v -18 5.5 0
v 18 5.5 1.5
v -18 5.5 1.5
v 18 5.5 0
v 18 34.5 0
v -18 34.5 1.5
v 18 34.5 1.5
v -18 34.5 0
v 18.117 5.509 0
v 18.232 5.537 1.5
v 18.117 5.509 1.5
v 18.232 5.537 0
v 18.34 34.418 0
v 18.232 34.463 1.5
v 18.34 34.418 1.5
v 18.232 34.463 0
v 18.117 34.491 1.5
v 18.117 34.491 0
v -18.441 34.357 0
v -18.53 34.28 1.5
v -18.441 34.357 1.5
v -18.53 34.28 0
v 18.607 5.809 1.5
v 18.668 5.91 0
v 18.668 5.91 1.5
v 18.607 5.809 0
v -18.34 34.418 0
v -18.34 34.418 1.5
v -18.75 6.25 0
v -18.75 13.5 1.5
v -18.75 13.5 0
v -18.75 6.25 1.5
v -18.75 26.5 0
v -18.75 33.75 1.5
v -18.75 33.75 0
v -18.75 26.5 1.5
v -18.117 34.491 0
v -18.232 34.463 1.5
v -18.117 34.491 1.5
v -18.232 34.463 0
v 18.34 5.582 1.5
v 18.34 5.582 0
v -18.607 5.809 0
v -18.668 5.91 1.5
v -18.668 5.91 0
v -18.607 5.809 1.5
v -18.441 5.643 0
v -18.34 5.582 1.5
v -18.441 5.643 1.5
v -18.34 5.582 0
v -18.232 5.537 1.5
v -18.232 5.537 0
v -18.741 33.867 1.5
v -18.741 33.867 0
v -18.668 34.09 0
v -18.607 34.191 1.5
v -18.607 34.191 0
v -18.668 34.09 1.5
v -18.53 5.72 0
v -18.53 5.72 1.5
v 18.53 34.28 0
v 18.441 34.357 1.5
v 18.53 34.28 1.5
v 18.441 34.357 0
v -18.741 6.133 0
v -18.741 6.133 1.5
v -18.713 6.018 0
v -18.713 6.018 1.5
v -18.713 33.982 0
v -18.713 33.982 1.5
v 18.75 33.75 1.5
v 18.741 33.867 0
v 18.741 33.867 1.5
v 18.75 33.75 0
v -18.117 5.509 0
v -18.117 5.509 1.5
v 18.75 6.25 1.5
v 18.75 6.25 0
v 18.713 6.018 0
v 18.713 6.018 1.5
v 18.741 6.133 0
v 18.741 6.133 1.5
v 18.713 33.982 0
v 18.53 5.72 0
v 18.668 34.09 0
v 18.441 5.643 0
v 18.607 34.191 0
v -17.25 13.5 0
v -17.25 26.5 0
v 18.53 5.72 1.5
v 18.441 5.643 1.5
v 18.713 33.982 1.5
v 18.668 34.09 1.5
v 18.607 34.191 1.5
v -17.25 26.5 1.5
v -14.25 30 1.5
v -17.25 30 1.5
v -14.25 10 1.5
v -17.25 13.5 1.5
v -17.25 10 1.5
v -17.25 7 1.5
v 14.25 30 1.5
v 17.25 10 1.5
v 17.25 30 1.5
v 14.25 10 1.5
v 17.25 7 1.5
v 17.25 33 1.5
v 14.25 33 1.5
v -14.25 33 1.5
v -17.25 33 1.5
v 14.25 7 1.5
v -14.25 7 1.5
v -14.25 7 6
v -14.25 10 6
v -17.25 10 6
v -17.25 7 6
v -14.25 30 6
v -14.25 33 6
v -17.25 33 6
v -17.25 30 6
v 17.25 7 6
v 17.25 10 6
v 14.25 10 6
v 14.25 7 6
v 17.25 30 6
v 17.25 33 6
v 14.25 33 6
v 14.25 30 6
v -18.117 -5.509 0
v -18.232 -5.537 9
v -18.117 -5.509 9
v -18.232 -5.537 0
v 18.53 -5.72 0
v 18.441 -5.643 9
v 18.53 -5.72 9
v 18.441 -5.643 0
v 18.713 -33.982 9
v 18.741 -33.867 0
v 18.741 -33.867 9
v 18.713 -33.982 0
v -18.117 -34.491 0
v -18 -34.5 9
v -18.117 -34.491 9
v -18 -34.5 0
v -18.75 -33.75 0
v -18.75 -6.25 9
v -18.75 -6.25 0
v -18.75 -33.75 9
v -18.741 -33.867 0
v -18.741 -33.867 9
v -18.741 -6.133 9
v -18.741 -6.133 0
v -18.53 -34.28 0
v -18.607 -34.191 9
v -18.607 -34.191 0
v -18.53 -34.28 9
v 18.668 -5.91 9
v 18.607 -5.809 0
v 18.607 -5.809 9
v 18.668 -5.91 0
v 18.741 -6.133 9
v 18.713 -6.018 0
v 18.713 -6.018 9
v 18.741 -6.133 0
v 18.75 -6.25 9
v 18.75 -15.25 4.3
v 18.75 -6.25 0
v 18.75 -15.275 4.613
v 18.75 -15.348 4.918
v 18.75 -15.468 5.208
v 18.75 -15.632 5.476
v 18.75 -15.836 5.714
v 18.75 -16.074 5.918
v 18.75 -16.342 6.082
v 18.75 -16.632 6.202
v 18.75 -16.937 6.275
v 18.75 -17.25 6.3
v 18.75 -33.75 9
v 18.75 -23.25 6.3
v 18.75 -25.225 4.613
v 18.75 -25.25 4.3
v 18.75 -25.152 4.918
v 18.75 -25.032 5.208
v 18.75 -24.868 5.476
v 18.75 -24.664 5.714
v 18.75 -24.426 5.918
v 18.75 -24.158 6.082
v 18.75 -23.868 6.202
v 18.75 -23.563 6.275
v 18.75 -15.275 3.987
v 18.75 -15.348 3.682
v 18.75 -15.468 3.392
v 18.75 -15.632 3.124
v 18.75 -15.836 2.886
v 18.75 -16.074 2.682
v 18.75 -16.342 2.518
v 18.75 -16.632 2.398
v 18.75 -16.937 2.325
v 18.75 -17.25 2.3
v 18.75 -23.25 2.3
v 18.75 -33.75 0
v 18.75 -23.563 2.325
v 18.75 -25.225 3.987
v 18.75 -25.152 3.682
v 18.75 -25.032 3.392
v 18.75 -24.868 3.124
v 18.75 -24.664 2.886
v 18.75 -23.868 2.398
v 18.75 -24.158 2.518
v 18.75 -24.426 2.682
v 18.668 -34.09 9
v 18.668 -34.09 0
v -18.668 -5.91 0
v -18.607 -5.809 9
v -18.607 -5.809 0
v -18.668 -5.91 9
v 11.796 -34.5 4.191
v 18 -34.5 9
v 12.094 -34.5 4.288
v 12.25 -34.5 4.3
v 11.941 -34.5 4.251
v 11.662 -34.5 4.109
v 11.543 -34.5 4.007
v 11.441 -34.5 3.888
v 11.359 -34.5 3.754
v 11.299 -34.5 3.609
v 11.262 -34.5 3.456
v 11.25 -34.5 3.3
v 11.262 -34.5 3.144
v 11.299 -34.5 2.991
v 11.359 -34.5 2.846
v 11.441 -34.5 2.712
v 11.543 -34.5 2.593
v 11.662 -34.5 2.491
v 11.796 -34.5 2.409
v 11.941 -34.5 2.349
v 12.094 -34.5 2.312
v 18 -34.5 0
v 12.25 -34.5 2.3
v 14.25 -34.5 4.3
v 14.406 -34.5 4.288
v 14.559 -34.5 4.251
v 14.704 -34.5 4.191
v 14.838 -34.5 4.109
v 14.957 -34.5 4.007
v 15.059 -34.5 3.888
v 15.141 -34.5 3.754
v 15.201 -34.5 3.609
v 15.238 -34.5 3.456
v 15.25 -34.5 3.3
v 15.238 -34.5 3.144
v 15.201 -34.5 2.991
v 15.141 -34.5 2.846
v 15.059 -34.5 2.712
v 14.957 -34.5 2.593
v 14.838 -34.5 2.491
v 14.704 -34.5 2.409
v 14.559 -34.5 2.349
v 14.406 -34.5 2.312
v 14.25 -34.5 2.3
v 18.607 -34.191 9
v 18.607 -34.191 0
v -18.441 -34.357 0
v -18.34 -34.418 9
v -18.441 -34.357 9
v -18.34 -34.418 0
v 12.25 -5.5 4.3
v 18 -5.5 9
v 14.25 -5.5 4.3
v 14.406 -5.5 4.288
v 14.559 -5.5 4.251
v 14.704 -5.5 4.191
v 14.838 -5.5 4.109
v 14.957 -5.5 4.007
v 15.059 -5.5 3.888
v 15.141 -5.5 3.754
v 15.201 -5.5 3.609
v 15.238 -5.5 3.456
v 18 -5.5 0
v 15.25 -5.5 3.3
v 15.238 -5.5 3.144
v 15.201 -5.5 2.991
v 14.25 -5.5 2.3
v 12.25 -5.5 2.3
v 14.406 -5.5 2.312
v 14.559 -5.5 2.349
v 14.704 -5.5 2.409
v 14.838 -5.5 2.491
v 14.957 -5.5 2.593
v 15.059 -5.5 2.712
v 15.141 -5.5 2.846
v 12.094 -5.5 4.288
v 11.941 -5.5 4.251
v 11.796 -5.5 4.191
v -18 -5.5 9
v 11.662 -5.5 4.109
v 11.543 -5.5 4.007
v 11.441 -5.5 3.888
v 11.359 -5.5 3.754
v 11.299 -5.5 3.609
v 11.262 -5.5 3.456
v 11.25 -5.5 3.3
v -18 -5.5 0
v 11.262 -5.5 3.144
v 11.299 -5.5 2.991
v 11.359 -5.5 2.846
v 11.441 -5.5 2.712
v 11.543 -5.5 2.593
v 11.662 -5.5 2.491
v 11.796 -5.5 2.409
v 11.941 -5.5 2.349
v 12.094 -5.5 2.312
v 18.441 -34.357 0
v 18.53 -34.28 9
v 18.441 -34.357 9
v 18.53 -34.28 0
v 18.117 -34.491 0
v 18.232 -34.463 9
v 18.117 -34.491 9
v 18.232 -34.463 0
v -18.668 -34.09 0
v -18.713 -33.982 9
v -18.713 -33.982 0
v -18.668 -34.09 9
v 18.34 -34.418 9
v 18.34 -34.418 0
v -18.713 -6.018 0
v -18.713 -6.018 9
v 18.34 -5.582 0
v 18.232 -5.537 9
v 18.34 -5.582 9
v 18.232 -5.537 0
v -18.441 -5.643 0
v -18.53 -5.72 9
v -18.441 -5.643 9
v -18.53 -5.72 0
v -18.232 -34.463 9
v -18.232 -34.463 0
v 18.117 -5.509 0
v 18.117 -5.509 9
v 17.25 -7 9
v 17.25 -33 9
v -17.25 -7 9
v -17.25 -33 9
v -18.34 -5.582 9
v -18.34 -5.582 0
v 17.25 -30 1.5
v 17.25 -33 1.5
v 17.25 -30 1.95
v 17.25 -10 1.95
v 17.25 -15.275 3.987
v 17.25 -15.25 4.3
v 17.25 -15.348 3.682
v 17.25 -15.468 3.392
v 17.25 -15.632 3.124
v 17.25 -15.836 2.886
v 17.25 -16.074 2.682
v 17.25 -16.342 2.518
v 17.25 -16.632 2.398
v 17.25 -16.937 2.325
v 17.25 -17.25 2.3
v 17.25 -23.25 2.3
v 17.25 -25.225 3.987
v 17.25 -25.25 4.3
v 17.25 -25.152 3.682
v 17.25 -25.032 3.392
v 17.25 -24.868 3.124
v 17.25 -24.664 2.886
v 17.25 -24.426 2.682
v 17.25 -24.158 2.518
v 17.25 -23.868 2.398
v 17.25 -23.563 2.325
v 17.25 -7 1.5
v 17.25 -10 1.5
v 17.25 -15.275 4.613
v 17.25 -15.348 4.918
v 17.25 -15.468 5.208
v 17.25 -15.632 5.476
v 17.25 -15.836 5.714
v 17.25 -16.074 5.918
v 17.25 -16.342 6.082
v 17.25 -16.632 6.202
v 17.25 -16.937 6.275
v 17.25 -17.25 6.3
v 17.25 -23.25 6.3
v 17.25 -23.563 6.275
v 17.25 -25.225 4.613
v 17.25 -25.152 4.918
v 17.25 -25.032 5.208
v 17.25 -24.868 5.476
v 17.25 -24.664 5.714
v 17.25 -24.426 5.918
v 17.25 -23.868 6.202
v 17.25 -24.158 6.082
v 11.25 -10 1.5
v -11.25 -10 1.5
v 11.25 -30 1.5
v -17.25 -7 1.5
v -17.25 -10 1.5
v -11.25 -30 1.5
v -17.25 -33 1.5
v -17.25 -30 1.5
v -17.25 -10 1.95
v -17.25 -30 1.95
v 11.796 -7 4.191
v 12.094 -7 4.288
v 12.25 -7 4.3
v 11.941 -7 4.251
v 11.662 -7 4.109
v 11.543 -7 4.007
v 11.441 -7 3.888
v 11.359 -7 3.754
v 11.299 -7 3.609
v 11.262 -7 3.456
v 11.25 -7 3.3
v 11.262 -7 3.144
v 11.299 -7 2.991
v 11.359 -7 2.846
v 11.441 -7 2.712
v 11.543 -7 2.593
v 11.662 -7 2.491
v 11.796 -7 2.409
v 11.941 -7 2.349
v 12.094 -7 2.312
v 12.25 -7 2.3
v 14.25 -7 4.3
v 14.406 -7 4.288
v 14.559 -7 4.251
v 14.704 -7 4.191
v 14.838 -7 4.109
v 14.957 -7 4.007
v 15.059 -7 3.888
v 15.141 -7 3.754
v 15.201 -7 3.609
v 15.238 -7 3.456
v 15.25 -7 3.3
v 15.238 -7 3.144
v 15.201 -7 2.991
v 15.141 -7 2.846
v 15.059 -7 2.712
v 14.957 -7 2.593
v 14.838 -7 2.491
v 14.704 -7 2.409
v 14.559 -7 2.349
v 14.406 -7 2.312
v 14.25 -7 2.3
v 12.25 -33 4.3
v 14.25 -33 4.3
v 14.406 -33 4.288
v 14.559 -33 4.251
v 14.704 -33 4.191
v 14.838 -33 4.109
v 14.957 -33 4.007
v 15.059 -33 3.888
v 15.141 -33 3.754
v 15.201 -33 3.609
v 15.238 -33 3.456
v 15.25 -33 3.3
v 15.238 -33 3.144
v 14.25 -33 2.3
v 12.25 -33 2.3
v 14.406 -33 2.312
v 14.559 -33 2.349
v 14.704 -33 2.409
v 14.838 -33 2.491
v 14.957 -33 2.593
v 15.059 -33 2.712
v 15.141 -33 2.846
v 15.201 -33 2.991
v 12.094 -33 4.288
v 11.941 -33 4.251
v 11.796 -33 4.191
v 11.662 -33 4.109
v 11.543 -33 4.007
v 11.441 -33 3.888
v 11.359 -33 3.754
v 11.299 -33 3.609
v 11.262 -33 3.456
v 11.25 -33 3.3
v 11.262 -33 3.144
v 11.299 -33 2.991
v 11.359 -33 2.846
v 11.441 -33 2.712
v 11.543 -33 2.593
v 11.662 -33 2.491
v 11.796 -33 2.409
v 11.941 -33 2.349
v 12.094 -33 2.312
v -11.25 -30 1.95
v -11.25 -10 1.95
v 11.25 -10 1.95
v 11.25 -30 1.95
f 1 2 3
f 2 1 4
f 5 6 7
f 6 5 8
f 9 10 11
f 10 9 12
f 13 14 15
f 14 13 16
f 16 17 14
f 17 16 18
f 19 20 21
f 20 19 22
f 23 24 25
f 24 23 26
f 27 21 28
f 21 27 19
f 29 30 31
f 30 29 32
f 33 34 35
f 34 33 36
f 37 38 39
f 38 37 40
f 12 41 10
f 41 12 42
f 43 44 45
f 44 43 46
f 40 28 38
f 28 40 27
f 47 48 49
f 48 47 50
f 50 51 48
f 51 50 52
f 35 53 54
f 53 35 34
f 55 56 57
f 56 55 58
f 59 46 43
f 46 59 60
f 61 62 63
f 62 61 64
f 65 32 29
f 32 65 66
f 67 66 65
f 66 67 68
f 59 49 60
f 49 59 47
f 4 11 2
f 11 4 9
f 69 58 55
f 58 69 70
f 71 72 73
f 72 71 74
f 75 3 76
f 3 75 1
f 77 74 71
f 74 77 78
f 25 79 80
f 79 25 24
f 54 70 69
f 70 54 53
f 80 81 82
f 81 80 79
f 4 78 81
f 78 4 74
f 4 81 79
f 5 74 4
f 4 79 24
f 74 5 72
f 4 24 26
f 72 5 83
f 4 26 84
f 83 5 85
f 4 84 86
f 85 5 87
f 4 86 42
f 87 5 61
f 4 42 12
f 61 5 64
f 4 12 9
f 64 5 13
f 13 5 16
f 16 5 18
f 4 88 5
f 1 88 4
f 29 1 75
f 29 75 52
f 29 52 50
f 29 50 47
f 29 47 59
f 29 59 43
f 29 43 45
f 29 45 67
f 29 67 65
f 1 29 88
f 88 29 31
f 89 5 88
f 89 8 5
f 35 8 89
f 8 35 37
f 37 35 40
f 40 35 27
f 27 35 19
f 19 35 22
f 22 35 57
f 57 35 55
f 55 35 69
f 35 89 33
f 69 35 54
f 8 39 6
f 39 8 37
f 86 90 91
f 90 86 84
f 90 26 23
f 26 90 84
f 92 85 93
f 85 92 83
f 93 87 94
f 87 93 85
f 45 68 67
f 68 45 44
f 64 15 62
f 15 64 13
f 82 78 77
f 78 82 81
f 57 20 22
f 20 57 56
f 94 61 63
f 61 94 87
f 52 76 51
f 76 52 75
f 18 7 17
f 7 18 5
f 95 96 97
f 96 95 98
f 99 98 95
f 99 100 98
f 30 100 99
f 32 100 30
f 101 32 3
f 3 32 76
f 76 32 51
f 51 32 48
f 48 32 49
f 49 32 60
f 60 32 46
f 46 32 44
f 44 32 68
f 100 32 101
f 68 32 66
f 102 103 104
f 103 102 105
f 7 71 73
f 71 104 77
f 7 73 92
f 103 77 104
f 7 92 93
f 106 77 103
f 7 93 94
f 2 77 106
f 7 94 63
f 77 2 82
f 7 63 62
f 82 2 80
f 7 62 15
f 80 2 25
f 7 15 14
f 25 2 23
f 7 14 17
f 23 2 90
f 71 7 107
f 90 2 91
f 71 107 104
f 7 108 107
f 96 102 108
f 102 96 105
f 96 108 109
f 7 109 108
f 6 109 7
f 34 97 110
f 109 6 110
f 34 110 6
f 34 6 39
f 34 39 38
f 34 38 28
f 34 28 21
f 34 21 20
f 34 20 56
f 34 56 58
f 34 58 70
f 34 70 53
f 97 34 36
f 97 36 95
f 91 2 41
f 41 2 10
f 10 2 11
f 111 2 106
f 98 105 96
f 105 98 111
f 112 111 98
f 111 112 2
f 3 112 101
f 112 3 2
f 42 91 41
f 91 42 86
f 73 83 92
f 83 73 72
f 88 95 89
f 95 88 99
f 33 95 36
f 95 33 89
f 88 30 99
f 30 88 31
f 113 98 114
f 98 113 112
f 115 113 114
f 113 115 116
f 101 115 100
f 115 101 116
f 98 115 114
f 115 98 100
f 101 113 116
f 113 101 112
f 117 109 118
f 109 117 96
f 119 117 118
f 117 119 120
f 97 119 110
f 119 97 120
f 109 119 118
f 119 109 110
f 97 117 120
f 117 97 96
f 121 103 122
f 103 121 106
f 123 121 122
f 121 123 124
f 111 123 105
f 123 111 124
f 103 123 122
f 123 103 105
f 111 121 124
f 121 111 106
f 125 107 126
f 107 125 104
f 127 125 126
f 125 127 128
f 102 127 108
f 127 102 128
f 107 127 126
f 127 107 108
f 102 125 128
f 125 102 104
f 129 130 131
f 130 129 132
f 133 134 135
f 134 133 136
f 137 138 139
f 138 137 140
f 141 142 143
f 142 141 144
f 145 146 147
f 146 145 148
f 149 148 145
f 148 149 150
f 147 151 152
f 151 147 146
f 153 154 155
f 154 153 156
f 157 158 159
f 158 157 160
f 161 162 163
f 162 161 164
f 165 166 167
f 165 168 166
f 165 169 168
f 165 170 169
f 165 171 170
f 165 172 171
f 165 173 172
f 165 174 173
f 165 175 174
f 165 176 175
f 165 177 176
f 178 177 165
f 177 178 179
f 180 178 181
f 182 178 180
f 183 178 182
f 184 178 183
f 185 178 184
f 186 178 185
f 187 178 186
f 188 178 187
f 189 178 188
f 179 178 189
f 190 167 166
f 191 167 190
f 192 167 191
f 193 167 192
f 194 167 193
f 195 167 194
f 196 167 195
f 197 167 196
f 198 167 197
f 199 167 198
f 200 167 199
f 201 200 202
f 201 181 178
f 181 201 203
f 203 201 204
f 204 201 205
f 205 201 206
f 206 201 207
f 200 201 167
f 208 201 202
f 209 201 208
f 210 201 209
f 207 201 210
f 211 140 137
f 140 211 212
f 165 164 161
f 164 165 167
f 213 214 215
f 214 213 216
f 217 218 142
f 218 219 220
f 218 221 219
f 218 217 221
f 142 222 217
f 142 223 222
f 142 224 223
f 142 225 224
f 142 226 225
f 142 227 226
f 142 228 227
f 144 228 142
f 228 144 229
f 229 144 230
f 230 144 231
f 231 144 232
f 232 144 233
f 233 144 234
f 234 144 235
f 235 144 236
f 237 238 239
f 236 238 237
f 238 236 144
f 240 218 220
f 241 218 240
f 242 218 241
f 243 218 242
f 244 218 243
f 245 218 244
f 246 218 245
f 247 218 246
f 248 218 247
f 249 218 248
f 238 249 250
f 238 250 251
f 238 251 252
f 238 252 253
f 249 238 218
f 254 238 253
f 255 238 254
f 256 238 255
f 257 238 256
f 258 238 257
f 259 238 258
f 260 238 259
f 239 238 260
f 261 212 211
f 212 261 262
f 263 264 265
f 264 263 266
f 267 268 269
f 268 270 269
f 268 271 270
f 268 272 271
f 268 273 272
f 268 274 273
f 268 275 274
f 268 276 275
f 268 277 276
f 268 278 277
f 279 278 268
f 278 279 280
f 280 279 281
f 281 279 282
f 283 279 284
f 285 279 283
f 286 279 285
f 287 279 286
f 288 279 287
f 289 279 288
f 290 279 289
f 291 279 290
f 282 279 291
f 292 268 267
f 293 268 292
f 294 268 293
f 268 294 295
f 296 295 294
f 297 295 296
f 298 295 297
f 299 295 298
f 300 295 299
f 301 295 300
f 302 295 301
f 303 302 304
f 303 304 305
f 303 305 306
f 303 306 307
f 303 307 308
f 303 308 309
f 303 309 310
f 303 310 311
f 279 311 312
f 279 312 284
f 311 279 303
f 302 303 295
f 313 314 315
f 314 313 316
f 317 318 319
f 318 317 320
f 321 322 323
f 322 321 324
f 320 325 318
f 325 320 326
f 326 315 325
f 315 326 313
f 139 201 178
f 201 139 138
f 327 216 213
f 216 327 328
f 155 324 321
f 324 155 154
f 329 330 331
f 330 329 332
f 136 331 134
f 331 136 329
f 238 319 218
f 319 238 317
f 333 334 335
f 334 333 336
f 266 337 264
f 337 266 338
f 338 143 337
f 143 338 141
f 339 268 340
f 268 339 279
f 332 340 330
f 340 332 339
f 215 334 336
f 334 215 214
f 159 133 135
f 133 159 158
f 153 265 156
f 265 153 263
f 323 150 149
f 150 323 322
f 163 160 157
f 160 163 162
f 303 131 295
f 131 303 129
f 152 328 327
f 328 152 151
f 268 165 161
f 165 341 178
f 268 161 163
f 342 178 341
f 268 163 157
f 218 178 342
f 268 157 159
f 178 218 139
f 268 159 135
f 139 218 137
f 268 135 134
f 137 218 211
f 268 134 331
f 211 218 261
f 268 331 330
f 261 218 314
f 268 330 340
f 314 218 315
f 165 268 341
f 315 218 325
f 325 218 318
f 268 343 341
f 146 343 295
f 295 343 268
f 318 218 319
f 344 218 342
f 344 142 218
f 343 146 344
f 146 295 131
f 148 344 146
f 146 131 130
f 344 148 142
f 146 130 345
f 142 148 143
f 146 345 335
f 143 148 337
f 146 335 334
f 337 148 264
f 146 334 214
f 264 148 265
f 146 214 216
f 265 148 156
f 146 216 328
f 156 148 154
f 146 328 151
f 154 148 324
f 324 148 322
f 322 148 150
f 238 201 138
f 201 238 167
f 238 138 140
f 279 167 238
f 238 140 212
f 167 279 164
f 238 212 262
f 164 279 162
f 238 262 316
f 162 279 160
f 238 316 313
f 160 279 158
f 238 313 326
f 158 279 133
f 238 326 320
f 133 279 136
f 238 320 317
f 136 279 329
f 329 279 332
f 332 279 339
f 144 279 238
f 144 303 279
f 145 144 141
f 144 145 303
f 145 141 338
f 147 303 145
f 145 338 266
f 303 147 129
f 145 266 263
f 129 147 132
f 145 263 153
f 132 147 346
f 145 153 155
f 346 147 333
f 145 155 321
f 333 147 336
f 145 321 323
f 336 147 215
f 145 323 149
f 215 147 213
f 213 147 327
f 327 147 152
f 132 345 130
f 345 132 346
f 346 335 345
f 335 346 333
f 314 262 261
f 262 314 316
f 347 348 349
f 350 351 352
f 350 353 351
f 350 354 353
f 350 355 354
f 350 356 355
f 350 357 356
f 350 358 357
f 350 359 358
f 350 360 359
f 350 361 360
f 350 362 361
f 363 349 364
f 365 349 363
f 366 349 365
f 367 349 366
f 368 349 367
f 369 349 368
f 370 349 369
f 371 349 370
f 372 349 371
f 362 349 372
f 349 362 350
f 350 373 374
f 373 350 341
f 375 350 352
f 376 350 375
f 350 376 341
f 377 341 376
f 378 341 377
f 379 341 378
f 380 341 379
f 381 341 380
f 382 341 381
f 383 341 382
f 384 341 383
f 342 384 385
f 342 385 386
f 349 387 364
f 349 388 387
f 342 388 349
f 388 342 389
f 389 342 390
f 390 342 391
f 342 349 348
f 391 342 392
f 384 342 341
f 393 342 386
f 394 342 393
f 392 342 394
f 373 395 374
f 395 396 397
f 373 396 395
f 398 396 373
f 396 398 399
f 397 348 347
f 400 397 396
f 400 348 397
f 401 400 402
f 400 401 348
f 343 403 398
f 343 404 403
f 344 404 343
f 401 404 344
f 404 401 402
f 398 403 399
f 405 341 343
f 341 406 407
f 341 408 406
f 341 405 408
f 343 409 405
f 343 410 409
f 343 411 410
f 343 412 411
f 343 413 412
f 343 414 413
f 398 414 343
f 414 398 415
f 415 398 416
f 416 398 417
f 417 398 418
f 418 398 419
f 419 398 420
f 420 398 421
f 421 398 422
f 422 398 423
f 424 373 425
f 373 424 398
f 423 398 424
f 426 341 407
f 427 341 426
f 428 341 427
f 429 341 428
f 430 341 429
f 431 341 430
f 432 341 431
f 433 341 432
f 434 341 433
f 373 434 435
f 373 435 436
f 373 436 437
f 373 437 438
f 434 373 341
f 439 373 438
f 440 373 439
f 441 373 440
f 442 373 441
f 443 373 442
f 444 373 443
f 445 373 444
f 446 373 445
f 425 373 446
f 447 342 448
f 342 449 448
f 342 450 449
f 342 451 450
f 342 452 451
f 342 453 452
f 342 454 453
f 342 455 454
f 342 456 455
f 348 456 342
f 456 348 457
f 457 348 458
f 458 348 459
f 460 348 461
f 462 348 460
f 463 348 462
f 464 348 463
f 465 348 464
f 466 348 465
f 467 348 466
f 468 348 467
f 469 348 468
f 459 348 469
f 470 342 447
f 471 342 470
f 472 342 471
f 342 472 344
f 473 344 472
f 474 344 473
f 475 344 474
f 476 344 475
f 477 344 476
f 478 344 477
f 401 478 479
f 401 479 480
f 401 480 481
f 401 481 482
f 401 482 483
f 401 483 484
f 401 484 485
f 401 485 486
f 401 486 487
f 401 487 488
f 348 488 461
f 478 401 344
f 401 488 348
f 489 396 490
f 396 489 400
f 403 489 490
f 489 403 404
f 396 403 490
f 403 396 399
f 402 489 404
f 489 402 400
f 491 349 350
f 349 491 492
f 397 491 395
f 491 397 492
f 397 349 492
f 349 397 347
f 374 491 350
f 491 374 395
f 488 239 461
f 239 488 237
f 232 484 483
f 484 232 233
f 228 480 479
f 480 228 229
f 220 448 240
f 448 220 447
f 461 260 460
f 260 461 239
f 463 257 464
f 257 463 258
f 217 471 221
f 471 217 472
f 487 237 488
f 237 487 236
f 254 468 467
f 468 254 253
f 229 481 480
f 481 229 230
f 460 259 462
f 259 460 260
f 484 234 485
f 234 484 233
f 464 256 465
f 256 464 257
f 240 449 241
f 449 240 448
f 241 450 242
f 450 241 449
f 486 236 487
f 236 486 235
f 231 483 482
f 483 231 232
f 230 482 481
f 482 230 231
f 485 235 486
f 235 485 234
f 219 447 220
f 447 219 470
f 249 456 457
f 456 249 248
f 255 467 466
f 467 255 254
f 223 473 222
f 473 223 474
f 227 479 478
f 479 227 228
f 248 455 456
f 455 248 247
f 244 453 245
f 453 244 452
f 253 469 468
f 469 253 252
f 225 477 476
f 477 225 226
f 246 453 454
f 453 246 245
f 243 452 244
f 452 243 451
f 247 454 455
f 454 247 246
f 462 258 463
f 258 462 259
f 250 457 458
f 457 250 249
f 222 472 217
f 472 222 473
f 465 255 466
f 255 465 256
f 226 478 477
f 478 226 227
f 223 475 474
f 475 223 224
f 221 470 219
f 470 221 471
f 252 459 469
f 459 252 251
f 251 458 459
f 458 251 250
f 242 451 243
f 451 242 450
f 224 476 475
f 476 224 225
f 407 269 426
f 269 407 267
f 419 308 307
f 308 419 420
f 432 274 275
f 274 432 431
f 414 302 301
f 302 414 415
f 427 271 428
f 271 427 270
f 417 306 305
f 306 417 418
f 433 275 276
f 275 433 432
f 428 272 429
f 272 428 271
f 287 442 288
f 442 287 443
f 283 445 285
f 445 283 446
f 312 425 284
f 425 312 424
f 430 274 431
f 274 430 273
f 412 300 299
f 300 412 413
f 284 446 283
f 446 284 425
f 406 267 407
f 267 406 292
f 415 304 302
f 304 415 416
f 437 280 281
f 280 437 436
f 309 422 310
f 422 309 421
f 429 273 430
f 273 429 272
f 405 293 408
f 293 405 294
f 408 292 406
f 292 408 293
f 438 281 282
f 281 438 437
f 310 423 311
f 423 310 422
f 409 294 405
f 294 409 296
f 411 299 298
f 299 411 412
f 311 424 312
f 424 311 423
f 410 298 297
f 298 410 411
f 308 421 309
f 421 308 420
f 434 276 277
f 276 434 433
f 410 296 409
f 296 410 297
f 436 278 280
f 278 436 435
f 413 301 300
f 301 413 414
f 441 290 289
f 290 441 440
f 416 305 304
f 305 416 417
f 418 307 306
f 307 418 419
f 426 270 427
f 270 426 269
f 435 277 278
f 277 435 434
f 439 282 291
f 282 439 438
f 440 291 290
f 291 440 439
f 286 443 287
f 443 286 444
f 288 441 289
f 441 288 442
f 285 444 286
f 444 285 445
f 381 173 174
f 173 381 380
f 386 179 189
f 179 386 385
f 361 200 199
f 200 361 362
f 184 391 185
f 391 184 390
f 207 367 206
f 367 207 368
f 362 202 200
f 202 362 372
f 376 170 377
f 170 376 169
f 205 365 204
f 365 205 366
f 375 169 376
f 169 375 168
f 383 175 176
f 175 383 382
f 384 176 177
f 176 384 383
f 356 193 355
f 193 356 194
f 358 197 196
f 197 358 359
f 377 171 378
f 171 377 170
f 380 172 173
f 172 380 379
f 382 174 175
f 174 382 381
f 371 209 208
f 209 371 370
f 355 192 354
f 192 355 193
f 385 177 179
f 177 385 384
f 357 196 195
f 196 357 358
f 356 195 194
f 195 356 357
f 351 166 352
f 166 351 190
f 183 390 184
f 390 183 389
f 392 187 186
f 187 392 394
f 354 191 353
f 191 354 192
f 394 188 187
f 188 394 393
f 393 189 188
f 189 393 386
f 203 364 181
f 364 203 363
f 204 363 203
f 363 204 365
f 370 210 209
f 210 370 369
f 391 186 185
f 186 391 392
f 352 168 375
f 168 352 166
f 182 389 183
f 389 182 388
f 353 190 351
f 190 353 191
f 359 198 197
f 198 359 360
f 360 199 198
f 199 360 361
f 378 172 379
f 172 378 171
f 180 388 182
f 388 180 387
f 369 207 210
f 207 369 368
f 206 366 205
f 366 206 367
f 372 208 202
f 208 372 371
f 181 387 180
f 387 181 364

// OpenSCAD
// Pascal Girard 2022

$fn = 40;

/* [Case Dimensions] */
case_iw = 26;        // inner height
case_il = 34.5;      // inner length
case_ih = 9;        // inner height
case_wall = 1.5;
sensor_base = 13;    // pad for temp/humidity sensor

/* [Foot Dimensions] */
foot_base = 6;
foot_height = 1.3;
foot_width = 20;
radius =  1;

/* [Opening Dimensions] */
usb_d = 4; 
usb_width = 6;
usb_height = case_wall + foot_height + 1.5;
i2_height = 5.5;
reset_d = 2;
reset_width = 2;
reset_height = case_wall + foot_height + .5;

post_h = 6.4;

module mirror2(v) {
    children();
    mirror(v) children();
}

module feet() {
    module foot() {
        translate([(case_il-foot_base)/2,0, foot_height]) {    
            cube([foot_base,foot_width,foot_height], center = true);   // foot base
            }
        }
    mirror2([1,0,0]) translate([(-(case_il-foot_base)), 0, 0])foot();
}
        
module case () {
     module reset_hole() {
         rotate([0,90,90]) {
            hull() {
                cylinder(h = case_wall * 2, d = reset_d, center=true);
                translate([0,reset_width,0]) cylinder(h = case_wall * 2, d = reset_d, center=true);
            }
         }
    }
    difference() {
            difference () {
                hull() {
                    for ( i = [-1,1] ) {
                        for (j=[-1,1]) {
                            translate([i*(case_il + case_wall)/2,j*(case_iw + case_wall)/2,0]) {
                                cylinder(case_ih, d = case_wall, true);
                            }
                        }
                    }
                } 
                translate([0,0,case_ih/2+case_wall]) {        // create a floor
                    cube([case_il, case_iw, case_ih], center = true);
                }
            }
        translate ([case_il/2, -3.25, usb_height]) {     // usb hole
            rotate([0,90,0]) {
                hull() {
                    cylinder(h = case_wall * 2, d = usb_d, center=true);
                    translate([0,usb_width,0]) 
                        cylinder(h = case_wall * 2, d = usb_d, center=true);
                }
            }
        }
        // reset & pin 0 holes
            mirror2 ([0,1,0]) translate ([(case_il-6)/2, -case_iw/2, reset_height]) { reset_hole(); }
    }
}

module cover() {
    difference() {
        hull() {
            for ( i = [-1,1] ) {
            for (j=[-1,1]) {
                translate([i*(case_il + case_wall)/2,j*(case_iw + case_wall)/2,0]) {
                    cylinder(case_wall, d = case_wall, true);
                    }
                }
            }
            
        }
        translate([-case_il/2 - case_wall,-(case_iw-sensor_base)/2,0])cube([case_wall,sensor_base,case_wall]);

    }
    union() {
        for ( i = [-1,1] ) {
            for (j=[-1,1]) {
                // posts
                translate([i*(case_il - 2*case_wall)/2,j*(case_iw - 2*case_wall)/2,5-case_wall]) {
                    cube([2*case_wall, 2*case_wall, 5],true);
            
                }
            }
        }    
    }
}    
translate([0,20,0]) cover();
translate([0,-20,0]) {case();feet();}
